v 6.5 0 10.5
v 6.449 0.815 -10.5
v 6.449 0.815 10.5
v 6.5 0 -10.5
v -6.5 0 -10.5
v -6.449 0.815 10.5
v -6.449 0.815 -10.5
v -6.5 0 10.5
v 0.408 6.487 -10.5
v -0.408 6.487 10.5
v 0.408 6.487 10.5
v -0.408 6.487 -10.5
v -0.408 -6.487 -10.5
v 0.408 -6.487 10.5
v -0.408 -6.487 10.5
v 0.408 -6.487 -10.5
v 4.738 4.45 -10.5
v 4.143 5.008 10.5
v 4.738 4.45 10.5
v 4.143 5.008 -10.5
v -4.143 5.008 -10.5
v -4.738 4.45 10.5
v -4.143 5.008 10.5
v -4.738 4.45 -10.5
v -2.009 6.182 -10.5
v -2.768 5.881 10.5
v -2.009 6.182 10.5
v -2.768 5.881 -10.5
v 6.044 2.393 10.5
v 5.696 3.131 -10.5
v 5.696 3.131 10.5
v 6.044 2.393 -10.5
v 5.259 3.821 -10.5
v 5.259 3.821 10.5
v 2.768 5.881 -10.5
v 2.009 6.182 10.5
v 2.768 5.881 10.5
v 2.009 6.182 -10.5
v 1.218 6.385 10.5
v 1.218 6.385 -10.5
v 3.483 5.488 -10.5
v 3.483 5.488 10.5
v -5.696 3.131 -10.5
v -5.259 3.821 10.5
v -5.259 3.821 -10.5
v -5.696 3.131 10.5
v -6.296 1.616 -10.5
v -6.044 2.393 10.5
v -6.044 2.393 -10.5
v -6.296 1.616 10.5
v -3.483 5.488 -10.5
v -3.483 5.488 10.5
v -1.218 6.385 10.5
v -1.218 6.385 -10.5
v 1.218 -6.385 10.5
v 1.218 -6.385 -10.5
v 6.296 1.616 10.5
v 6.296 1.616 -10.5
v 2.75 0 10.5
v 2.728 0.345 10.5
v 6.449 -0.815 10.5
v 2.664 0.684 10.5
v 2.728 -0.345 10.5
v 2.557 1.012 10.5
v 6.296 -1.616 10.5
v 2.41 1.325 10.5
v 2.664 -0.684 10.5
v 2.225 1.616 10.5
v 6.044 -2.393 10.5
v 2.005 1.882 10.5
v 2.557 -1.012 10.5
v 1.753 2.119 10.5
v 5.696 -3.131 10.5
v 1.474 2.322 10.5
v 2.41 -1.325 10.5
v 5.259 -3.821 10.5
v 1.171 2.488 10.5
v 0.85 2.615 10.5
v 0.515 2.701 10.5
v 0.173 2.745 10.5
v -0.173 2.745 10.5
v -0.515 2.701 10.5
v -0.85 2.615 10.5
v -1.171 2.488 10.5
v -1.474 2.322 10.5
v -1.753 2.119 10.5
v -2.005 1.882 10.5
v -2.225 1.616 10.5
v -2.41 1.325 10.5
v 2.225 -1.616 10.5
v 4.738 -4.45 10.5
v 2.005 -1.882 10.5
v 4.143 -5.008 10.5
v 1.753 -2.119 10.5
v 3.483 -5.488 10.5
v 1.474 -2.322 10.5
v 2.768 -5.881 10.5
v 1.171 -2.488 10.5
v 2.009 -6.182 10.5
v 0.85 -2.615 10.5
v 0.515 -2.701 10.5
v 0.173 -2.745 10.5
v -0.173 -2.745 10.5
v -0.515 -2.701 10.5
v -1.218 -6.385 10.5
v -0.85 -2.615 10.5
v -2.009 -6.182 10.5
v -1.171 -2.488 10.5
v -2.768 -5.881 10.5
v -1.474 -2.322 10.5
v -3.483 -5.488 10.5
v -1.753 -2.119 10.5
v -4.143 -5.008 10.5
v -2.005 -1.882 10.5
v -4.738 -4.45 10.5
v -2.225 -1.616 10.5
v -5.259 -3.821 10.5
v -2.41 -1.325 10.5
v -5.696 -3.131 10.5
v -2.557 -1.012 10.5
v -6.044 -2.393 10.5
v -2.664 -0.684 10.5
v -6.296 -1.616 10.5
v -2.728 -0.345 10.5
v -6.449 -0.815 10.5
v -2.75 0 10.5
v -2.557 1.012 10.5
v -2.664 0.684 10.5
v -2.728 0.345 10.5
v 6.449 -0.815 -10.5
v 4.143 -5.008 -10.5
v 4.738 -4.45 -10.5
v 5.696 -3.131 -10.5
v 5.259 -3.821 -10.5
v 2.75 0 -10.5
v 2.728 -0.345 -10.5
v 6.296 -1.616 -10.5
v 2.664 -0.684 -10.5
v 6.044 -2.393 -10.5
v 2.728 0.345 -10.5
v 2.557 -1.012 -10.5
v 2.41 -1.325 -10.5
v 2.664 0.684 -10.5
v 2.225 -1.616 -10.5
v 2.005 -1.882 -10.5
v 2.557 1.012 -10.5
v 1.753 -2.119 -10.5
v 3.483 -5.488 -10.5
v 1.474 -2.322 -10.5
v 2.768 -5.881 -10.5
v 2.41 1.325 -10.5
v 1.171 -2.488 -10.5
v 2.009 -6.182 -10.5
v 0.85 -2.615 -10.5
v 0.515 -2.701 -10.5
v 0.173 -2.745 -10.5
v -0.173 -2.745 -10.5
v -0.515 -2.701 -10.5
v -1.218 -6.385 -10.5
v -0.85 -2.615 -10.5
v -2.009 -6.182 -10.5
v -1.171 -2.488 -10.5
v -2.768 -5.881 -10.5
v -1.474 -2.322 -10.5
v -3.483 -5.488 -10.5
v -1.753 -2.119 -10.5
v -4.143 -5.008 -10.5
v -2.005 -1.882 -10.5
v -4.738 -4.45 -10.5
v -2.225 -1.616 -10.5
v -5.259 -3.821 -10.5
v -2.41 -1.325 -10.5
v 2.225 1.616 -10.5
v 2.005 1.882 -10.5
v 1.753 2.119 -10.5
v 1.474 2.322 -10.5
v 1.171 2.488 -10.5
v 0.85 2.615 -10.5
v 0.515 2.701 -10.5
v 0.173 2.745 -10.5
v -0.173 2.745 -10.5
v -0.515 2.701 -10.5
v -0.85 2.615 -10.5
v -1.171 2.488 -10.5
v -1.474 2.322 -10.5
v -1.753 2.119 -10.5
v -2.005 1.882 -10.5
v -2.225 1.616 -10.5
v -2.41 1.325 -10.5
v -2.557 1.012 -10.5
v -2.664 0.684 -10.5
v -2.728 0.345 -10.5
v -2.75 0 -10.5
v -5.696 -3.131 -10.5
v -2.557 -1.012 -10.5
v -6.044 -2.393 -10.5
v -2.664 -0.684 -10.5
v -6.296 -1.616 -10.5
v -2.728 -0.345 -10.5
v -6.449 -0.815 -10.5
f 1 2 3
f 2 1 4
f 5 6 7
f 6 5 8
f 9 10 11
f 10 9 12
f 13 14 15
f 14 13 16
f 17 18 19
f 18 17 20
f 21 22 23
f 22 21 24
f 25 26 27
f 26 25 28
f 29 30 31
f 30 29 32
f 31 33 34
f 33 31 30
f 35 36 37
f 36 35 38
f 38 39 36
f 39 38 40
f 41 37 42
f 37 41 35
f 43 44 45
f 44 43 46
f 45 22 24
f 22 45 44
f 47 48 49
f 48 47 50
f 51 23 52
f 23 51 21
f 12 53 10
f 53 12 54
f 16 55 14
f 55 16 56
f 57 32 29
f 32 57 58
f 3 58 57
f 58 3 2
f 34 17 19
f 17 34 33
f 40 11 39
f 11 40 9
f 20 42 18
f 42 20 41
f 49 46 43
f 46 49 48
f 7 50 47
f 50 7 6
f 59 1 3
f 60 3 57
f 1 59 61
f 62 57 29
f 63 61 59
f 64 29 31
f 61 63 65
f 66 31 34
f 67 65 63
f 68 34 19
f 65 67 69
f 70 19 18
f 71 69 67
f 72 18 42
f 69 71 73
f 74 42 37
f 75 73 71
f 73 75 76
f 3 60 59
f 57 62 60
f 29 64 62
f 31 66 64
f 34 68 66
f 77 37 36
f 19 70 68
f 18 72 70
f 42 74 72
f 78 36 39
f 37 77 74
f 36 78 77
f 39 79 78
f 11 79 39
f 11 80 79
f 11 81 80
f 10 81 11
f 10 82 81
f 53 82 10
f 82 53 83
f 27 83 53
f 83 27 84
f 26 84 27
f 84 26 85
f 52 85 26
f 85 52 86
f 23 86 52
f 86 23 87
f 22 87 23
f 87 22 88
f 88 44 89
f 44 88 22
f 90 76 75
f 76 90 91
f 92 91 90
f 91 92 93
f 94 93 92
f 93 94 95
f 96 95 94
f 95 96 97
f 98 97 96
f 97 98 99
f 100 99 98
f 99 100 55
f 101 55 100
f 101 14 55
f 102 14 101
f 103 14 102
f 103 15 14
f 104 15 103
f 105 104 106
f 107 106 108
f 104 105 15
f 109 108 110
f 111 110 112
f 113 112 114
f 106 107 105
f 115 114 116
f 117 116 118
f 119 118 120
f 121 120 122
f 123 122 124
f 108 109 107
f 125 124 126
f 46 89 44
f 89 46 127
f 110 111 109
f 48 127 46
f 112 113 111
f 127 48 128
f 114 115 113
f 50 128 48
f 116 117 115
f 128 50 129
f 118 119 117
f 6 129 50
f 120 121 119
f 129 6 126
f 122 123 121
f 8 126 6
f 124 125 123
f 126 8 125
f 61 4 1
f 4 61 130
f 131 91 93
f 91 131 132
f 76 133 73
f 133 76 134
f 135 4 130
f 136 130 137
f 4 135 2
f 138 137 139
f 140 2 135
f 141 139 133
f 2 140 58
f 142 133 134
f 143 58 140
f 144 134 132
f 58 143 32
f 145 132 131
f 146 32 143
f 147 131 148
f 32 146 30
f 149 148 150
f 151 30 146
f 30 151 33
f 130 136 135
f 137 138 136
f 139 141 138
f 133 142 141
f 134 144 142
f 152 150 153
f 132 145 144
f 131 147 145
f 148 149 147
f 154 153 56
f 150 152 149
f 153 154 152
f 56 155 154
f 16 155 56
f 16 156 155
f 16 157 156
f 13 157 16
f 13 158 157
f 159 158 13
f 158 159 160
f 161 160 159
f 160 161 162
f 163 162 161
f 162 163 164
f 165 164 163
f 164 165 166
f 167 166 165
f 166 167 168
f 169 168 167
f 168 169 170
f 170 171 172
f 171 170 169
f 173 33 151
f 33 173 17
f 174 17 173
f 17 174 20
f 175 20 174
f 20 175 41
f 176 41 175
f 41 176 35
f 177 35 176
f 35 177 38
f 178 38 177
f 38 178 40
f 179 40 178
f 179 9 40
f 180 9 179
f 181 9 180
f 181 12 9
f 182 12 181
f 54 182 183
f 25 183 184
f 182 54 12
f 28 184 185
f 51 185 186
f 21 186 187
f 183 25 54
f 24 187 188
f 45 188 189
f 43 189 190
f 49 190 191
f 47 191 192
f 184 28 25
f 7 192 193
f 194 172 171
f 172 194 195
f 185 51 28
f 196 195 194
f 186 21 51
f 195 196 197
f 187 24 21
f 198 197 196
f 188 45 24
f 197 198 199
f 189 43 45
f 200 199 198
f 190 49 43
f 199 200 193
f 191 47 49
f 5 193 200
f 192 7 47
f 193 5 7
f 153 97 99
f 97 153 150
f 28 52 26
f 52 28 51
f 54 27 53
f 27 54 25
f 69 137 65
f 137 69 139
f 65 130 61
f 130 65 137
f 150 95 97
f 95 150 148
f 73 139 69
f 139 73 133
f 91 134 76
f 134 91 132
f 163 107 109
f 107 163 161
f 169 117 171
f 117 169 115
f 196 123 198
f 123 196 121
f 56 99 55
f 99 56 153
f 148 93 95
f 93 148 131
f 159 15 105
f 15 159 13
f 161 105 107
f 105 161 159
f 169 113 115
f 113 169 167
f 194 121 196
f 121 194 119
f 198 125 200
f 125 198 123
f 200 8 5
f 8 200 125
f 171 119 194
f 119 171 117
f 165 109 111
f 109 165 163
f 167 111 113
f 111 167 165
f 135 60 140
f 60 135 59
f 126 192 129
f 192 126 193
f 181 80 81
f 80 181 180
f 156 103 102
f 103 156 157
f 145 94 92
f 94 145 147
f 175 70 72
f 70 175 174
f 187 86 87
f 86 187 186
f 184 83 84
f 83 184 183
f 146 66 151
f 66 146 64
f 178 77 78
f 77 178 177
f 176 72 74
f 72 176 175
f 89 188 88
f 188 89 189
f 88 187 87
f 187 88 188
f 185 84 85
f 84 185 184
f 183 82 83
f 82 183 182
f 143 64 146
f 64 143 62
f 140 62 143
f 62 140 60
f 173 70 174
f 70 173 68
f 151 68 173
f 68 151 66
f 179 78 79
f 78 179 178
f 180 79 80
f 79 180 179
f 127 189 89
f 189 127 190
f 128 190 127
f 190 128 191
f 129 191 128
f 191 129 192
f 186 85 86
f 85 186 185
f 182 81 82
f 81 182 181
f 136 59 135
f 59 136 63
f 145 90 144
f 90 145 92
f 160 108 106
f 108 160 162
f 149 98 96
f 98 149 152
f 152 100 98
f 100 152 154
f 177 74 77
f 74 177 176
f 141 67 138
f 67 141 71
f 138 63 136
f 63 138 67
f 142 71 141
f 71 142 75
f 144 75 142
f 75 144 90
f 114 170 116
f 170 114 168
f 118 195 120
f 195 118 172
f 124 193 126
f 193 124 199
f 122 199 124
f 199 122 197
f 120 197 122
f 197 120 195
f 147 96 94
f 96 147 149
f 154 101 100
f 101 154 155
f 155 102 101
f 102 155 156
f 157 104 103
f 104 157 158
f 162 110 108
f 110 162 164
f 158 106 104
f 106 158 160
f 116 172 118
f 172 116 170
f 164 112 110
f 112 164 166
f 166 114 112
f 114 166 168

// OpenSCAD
$fn = 50;


difference() {
	union() {
		translate(v = [0, 0, -10.5000000000]) {
			cylinder(h = 21, r = 6.5000000000);
		}
	}
	union() {
		translate(v = [0, 0, -100.0000000000]) {
			cylinder(h = 200, r = 2.7500000000);
		}
	}
}
